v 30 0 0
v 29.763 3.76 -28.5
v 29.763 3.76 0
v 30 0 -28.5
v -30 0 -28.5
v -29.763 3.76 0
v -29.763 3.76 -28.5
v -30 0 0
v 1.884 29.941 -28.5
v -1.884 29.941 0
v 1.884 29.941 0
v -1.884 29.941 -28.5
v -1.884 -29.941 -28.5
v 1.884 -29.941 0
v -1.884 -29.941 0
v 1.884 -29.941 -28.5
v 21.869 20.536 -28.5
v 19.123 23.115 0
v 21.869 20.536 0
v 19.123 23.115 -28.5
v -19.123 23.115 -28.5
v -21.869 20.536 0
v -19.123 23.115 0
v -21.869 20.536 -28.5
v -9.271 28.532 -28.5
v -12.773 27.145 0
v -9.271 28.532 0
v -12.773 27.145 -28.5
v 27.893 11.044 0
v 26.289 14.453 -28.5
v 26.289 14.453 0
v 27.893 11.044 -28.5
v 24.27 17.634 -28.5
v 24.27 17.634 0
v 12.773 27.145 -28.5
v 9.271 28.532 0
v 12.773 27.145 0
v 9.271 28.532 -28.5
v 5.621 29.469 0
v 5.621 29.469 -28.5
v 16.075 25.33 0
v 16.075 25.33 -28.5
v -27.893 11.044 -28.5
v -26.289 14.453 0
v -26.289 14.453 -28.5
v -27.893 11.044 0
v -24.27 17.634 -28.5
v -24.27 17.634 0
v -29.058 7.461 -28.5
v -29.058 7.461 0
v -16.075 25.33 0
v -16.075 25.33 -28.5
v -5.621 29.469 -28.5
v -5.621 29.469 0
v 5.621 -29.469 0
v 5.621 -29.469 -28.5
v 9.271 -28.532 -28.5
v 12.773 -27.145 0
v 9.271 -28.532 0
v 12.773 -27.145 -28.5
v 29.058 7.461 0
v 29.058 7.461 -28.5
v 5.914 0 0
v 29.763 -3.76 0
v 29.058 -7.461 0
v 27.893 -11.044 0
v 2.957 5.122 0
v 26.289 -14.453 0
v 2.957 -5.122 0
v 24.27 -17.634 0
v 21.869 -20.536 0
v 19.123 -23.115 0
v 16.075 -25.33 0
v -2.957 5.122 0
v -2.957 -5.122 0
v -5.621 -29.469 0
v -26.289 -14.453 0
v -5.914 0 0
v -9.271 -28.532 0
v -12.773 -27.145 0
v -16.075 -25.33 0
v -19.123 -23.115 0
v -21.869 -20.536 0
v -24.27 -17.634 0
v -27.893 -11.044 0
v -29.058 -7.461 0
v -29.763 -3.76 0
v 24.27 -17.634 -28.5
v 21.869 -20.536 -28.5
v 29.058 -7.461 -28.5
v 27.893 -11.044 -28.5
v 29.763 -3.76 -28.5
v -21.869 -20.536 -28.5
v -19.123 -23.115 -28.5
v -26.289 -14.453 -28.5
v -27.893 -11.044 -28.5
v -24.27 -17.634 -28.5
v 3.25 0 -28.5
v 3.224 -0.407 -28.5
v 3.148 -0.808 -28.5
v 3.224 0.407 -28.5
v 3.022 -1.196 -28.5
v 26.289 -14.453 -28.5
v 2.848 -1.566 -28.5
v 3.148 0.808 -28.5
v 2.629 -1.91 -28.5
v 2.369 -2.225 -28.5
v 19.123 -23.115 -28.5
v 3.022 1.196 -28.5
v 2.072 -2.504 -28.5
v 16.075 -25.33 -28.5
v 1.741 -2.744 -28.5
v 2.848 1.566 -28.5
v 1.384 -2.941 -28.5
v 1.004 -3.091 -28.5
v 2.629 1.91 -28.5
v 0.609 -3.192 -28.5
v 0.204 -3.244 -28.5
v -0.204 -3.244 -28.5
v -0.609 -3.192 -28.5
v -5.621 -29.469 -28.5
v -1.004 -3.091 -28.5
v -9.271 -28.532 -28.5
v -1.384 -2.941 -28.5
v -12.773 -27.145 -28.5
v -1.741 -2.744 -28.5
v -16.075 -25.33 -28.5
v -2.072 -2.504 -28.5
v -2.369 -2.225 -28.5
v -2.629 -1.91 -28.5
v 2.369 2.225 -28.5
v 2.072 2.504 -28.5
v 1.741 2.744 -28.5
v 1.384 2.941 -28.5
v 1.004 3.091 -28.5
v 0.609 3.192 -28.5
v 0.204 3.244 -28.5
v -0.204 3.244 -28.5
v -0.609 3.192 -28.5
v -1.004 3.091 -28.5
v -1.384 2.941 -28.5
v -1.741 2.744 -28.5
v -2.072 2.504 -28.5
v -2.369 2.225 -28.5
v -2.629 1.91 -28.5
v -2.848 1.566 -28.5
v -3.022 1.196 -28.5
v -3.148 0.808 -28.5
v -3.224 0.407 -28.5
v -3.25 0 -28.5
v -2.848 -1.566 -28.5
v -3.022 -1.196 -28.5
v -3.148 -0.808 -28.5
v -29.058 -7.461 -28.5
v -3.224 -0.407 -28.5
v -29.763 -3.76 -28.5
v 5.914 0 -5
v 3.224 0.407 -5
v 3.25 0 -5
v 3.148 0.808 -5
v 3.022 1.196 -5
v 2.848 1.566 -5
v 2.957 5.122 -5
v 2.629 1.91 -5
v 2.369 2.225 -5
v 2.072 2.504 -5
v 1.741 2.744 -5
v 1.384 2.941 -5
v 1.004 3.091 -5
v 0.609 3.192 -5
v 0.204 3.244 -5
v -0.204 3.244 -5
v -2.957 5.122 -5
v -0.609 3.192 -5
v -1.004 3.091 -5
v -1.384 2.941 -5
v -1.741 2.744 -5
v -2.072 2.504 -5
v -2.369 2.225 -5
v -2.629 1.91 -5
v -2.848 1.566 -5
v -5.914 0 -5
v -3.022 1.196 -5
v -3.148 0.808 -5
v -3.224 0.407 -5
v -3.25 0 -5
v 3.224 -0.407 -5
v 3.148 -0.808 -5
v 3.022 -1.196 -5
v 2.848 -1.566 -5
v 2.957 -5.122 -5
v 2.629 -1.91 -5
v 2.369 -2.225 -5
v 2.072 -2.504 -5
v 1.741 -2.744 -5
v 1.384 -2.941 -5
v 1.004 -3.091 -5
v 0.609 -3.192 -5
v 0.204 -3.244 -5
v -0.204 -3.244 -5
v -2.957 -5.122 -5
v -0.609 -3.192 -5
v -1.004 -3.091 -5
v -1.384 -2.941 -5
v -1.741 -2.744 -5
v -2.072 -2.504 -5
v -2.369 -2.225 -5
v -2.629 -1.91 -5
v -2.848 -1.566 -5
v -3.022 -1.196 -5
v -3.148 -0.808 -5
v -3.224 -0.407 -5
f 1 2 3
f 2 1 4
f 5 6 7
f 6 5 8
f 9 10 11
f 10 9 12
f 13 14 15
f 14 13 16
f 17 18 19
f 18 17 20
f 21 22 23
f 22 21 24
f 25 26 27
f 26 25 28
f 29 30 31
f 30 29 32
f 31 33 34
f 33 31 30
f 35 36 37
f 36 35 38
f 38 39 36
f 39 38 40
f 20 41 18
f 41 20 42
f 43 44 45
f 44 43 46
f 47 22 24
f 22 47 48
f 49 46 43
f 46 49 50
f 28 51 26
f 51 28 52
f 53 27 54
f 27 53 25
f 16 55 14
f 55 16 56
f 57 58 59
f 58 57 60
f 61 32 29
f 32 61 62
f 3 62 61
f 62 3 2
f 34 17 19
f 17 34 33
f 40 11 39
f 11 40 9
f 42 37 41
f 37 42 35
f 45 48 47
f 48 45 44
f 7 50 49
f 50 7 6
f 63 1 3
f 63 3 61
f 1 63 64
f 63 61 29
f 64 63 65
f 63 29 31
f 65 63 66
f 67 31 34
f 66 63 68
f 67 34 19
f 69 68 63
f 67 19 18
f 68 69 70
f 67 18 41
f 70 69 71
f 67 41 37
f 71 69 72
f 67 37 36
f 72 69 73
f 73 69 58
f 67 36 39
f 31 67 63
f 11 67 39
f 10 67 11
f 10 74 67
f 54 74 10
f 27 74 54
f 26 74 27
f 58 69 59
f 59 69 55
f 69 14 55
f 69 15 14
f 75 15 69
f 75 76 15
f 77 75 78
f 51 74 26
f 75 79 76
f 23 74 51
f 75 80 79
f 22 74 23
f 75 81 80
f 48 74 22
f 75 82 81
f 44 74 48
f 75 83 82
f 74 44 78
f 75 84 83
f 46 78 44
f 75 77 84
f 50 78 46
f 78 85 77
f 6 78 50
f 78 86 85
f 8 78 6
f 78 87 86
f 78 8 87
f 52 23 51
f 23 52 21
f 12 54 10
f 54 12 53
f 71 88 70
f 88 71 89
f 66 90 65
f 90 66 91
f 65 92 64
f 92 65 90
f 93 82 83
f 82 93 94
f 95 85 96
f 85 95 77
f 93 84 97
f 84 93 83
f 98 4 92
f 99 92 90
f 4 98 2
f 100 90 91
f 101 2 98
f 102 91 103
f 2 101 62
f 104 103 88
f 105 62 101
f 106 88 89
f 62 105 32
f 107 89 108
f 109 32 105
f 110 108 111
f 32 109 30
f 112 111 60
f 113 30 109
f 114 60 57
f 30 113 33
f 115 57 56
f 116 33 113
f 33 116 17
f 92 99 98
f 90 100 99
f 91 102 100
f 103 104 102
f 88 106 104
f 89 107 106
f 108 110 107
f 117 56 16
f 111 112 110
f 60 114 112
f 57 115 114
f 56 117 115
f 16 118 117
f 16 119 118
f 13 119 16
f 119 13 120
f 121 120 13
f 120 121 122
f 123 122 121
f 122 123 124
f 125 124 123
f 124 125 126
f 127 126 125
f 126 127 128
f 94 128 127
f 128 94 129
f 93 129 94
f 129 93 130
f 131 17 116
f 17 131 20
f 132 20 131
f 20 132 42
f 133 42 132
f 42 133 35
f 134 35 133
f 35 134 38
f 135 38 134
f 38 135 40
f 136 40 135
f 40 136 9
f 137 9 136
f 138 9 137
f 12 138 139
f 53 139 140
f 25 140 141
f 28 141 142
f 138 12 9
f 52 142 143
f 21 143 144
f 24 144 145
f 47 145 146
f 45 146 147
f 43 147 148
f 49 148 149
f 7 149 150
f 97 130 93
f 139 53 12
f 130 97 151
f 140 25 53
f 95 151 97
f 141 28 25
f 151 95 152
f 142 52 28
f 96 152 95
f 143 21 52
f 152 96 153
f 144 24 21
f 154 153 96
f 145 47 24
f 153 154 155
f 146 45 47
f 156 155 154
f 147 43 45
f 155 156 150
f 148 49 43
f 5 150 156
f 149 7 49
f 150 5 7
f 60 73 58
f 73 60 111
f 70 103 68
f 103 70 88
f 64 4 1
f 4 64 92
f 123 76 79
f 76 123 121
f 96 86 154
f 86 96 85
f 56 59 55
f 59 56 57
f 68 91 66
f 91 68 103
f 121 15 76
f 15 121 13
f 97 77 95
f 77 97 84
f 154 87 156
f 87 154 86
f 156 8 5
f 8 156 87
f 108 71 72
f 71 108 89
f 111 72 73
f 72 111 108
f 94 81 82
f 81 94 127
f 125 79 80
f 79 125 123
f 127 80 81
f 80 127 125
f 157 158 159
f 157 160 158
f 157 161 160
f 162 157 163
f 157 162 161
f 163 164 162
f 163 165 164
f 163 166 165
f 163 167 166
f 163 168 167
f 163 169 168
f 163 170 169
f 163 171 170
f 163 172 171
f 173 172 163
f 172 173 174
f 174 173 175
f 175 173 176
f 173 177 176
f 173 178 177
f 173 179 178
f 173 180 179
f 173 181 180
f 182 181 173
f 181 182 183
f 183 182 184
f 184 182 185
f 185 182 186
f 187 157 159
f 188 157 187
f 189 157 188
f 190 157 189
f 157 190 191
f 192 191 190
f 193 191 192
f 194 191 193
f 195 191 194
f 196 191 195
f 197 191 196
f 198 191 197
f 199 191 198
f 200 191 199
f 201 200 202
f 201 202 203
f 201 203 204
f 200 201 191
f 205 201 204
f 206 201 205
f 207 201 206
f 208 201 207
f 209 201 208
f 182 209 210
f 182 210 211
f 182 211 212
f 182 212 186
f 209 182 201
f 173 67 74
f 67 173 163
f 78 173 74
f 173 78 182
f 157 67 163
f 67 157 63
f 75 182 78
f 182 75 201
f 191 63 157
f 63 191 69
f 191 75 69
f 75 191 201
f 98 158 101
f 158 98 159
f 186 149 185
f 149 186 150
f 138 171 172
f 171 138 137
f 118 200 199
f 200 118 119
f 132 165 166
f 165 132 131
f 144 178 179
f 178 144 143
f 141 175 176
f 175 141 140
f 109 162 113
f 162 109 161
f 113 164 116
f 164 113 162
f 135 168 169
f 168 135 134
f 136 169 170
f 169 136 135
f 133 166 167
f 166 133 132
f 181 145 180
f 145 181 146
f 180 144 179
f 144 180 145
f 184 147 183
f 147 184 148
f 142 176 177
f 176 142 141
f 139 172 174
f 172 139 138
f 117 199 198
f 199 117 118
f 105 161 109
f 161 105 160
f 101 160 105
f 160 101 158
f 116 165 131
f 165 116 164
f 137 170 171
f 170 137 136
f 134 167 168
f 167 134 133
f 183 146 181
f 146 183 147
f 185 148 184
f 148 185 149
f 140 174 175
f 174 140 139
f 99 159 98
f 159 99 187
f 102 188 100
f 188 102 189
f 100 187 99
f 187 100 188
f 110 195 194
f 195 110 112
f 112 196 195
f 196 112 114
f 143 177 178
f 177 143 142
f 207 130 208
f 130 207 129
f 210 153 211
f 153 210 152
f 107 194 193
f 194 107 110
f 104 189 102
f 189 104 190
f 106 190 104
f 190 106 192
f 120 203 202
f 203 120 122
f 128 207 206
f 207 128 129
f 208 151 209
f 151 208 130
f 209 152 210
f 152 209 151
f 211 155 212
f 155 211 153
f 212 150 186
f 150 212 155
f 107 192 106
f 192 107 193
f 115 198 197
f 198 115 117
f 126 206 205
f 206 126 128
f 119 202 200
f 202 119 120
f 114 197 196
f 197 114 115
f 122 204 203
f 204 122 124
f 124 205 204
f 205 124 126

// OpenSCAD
$fn = 50;

difference() {
	union() {
		translate(v = [0, 0, -28.5]) {
			cylinder(h = 28.5, r = 30.0);
		}
		#translate(v = [0, 0, -30.0]) {
			cylinder(h = 30, r = 2.875);
		}
	}
	union() {
		translate(v = [0, 0, 0]) {
			rotate(a = [0, 0, 0]) {
				difference() {
					union() {
						translate(v = [0, 0, -5]) {
							linear_extrude(height = 5) {
								polygon(points = [[5.914249999999999, 0.0], [2.957125, 5.1218907443321156], [-2.9571249999999982, 5.1218907443321156], [-5.914249999999999, 7.242867331857232e-16], [-2.9571250000000022, -5.121890744332115], [2.9571249999999956, -5.121890744332118]]);
							}
						}
					}
					union();
				}
			}
		}
		#translate(v = [0, 0, -100.0]) {
			cylinder(h = 200, r = 3.25);
		}
	}
}
